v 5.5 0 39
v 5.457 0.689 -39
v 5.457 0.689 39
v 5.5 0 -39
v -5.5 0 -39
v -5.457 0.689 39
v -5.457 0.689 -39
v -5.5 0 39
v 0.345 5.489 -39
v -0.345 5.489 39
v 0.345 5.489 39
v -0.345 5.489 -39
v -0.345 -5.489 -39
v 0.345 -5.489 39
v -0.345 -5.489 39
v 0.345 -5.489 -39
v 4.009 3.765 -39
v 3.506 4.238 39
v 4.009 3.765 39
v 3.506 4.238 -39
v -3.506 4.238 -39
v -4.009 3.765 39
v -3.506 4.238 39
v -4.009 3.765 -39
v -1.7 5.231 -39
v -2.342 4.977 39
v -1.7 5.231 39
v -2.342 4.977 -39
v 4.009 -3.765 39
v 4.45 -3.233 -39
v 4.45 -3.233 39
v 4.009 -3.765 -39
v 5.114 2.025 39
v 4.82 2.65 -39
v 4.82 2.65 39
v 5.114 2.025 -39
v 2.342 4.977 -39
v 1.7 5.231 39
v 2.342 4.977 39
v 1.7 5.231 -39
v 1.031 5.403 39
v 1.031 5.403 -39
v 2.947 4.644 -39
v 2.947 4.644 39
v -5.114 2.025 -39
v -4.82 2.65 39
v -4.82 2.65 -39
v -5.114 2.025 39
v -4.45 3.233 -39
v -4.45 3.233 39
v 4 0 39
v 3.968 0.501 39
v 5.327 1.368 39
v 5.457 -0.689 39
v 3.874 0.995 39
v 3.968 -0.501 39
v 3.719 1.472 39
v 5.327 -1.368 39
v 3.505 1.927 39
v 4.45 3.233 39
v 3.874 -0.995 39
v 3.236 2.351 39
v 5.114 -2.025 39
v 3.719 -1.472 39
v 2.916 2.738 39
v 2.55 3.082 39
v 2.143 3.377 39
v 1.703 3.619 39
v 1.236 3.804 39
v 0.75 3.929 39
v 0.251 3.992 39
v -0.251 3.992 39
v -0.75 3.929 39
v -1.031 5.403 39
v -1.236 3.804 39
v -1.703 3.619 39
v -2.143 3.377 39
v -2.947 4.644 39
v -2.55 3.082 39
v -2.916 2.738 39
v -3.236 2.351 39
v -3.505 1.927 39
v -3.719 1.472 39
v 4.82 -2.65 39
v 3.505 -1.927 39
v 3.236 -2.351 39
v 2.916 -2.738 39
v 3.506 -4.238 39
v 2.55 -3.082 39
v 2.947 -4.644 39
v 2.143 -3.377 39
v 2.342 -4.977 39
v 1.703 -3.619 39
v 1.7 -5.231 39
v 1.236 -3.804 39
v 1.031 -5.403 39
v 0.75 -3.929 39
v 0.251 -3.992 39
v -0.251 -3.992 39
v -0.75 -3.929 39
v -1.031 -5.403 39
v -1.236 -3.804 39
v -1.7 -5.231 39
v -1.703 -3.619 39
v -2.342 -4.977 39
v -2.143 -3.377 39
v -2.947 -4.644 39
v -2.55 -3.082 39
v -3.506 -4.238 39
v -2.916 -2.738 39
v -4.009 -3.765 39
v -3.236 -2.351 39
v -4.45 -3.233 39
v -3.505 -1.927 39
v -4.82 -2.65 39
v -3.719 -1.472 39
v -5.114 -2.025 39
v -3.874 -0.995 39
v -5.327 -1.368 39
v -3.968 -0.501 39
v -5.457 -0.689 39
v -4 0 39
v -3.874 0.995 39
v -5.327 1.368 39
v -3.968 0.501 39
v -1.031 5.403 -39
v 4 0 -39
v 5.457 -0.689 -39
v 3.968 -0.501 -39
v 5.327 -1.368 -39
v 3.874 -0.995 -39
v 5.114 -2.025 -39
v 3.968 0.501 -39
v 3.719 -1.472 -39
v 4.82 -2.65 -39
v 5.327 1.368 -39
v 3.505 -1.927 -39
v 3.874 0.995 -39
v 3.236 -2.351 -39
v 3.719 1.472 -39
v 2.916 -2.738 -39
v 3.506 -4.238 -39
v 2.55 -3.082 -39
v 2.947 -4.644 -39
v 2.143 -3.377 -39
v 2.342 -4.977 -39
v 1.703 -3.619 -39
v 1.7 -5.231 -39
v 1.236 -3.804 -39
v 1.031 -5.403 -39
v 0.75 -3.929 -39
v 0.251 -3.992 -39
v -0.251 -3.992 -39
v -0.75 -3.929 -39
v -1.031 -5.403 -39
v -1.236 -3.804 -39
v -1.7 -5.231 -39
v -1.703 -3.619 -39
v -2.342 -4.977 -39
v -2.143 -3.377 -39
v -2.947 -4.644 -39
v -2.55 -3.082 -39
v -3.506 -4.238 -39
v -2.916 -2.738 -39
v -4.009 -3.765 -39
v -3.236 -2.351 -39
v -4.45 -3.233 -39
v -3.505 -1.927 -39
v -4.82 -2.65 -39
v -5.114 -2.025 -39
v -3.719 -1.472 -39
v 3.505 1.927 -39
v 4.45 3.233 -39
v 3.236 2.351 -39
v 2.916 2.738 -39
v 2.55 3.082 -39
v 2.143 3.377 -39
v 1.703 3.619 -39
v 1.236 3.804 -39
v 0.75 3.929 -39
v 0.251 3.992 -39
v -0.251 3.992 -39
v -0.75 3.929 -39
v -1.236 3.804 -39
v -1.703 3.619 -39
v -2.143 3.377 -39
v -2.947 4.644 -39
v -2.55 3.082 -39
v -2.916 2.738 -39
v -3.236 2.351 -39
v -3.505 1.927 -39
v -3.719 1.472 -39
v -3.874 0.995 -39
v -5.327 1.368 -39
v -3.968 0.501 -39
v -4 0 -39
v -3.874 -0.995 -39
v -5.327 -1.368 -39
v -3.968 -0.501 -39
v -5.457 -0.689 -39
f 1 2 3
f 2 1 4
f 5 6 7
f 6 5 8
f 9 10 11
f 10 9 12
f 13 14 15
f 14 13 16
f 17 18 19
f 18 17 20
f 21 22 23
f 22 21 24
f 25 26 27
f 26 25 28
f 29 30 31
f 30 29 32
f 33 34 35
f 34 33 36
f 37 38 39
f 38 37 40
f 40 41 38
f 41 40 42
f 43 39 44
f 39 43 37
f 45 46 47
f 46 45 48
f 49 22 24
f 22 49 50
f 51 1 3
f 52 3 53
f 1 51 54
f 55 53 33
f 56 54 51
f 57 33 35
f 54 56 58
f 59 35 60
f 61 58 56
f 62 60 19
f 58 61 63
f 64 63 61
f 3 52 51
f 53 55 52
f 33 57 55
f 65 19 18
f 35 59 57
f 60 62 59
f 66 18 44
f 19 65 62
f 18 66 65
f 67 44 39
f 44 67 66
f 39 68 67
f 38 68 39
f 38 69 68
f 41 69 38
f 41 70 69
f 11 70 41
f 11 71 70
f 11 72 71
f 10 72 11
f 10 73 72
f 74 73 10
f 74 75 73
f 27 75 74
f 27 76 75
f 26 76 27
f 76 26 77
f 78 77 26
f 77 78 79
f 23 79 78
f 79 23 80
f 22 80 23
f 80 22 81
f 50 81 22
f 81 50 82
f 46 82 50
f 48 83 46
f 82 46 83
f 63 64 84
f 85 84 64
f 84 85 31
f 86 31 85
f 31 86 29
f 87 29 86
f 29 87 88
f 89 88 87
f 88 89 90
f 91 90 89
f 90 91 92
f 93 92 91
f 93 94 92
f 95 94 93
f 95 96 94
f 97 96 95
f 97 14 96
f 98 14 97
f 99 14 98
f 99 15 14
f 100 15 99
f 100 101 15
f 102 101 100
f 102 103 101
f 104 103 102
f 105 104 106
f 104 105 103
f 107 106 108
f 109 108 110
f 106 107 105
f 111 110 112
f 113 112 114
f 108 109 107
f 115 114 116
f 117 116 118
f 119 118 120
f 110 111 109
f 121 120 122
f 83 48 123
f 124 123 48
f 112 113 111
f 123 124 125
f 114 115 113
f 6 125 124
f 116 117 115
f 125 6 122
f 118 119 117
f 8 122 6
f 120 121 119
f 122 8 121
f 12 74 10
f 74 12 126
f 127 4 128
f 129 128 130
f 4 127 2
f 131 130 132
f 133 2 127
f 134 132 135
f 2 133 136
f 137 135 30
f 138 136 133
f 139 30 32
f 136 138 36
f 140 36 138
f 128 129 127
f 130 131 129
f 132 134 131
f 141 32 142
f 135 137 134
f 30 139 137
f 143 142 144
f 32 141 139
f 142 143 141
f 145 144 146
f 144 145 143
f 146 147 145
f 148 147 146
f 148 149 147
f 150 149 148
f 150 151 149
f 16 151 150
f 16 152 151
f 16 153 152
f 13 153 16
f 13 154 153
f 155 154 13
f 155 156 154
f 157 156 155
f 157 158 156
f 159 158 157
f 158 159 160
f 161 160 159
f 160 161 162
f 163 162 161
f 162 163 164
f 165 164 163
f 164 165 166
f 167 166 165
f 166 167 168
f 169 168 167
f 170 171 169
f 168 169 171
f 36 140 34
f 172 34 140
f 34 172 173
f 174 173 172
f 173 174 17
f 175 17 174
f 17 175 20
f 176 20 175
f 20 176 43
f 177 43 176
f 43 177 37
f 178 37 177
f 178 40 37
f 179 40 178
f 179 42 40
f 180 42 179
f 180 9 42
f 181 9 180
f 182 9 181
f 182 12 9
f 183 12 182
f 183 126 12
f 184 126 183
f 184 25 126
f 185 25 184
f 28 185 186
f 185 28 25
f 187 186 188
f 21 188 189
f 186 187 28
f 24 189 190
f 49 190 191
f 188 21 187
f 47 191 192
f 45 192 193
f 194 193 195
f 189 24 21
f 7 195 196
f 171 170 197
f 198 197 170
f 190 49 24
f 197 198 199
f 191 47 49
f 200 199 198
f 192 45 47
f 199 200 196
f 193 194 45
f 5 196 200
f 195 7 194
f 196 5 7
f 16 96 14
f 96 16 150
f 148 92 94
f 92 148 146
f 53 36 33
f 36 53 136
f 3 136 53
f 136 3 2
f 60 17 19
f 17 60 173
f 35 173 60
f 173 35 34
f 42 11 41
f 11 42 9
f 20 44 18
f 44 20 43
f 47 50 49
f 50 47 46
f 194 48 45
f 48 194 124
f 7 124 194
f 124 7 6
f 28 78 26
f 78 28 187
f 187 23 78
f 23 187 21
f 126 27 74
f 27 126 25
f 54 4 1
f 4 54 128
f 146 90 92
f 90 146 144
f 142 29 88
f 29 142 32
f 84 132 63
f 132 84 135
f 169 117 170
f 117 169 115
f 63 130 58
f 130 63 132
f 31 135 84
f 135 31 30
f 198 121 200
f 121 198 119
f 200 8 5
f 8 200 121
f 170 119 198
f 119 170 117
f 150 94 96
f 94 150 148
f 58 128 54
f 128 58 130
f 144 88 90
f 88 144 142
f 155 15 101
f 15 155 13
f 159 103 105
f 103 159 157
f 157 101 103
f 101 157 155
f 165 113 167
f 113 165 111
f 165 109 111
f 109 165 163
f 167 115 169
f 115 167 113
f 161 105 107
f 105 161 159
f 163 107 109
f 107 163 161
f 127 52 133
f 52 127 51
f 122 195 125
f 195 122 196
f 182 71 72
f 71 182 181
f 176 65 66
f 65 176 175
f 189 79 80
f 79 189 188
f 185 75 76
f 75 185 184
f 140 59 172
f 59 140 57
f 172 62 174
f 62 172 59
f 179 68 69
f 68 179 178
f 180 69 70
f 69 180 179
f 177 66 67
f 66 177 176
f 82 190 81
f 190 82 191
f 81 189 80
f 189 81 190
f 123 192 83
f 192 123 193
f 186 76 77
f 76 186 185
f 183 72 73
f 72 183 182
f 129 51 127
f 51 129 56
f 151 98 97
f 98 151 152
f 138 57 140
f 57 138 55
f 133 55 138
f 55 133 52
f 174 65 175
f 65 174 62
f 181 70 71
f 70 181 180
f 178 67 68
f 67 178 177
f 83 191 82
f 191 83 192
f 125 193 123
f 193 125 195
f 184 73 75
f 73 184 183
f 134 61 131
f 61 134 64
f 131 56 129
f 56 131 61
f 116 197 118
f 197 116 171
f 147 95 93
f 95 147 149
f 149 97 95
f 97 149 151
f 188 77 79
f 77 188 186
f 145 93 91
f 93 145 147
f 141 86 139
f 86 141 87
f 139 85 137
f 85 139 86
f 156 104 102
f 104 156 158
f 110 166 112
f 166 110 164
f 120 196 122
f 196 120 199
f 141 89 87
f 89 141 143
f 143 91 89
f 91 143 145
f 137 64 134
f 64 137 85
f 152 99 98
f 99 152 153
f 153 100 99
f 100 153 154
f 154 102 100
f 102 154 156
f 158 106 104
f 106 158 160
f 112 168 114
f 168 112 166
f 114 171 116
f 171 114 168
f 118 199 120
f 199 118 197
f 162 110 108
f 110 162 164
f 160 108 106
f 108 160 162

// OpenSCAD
$fn = 50;


difference() {
	union() {
		translate(v = [0, 0, -39.0000000000]) {
			cylinder(h = 78, r = 5.5000000000);
		}
	}
	union() {
		translate(v = [0, 0, -100.0000000000]) {
			cylinder(h = 200, r = 4);
		}
	}
}
